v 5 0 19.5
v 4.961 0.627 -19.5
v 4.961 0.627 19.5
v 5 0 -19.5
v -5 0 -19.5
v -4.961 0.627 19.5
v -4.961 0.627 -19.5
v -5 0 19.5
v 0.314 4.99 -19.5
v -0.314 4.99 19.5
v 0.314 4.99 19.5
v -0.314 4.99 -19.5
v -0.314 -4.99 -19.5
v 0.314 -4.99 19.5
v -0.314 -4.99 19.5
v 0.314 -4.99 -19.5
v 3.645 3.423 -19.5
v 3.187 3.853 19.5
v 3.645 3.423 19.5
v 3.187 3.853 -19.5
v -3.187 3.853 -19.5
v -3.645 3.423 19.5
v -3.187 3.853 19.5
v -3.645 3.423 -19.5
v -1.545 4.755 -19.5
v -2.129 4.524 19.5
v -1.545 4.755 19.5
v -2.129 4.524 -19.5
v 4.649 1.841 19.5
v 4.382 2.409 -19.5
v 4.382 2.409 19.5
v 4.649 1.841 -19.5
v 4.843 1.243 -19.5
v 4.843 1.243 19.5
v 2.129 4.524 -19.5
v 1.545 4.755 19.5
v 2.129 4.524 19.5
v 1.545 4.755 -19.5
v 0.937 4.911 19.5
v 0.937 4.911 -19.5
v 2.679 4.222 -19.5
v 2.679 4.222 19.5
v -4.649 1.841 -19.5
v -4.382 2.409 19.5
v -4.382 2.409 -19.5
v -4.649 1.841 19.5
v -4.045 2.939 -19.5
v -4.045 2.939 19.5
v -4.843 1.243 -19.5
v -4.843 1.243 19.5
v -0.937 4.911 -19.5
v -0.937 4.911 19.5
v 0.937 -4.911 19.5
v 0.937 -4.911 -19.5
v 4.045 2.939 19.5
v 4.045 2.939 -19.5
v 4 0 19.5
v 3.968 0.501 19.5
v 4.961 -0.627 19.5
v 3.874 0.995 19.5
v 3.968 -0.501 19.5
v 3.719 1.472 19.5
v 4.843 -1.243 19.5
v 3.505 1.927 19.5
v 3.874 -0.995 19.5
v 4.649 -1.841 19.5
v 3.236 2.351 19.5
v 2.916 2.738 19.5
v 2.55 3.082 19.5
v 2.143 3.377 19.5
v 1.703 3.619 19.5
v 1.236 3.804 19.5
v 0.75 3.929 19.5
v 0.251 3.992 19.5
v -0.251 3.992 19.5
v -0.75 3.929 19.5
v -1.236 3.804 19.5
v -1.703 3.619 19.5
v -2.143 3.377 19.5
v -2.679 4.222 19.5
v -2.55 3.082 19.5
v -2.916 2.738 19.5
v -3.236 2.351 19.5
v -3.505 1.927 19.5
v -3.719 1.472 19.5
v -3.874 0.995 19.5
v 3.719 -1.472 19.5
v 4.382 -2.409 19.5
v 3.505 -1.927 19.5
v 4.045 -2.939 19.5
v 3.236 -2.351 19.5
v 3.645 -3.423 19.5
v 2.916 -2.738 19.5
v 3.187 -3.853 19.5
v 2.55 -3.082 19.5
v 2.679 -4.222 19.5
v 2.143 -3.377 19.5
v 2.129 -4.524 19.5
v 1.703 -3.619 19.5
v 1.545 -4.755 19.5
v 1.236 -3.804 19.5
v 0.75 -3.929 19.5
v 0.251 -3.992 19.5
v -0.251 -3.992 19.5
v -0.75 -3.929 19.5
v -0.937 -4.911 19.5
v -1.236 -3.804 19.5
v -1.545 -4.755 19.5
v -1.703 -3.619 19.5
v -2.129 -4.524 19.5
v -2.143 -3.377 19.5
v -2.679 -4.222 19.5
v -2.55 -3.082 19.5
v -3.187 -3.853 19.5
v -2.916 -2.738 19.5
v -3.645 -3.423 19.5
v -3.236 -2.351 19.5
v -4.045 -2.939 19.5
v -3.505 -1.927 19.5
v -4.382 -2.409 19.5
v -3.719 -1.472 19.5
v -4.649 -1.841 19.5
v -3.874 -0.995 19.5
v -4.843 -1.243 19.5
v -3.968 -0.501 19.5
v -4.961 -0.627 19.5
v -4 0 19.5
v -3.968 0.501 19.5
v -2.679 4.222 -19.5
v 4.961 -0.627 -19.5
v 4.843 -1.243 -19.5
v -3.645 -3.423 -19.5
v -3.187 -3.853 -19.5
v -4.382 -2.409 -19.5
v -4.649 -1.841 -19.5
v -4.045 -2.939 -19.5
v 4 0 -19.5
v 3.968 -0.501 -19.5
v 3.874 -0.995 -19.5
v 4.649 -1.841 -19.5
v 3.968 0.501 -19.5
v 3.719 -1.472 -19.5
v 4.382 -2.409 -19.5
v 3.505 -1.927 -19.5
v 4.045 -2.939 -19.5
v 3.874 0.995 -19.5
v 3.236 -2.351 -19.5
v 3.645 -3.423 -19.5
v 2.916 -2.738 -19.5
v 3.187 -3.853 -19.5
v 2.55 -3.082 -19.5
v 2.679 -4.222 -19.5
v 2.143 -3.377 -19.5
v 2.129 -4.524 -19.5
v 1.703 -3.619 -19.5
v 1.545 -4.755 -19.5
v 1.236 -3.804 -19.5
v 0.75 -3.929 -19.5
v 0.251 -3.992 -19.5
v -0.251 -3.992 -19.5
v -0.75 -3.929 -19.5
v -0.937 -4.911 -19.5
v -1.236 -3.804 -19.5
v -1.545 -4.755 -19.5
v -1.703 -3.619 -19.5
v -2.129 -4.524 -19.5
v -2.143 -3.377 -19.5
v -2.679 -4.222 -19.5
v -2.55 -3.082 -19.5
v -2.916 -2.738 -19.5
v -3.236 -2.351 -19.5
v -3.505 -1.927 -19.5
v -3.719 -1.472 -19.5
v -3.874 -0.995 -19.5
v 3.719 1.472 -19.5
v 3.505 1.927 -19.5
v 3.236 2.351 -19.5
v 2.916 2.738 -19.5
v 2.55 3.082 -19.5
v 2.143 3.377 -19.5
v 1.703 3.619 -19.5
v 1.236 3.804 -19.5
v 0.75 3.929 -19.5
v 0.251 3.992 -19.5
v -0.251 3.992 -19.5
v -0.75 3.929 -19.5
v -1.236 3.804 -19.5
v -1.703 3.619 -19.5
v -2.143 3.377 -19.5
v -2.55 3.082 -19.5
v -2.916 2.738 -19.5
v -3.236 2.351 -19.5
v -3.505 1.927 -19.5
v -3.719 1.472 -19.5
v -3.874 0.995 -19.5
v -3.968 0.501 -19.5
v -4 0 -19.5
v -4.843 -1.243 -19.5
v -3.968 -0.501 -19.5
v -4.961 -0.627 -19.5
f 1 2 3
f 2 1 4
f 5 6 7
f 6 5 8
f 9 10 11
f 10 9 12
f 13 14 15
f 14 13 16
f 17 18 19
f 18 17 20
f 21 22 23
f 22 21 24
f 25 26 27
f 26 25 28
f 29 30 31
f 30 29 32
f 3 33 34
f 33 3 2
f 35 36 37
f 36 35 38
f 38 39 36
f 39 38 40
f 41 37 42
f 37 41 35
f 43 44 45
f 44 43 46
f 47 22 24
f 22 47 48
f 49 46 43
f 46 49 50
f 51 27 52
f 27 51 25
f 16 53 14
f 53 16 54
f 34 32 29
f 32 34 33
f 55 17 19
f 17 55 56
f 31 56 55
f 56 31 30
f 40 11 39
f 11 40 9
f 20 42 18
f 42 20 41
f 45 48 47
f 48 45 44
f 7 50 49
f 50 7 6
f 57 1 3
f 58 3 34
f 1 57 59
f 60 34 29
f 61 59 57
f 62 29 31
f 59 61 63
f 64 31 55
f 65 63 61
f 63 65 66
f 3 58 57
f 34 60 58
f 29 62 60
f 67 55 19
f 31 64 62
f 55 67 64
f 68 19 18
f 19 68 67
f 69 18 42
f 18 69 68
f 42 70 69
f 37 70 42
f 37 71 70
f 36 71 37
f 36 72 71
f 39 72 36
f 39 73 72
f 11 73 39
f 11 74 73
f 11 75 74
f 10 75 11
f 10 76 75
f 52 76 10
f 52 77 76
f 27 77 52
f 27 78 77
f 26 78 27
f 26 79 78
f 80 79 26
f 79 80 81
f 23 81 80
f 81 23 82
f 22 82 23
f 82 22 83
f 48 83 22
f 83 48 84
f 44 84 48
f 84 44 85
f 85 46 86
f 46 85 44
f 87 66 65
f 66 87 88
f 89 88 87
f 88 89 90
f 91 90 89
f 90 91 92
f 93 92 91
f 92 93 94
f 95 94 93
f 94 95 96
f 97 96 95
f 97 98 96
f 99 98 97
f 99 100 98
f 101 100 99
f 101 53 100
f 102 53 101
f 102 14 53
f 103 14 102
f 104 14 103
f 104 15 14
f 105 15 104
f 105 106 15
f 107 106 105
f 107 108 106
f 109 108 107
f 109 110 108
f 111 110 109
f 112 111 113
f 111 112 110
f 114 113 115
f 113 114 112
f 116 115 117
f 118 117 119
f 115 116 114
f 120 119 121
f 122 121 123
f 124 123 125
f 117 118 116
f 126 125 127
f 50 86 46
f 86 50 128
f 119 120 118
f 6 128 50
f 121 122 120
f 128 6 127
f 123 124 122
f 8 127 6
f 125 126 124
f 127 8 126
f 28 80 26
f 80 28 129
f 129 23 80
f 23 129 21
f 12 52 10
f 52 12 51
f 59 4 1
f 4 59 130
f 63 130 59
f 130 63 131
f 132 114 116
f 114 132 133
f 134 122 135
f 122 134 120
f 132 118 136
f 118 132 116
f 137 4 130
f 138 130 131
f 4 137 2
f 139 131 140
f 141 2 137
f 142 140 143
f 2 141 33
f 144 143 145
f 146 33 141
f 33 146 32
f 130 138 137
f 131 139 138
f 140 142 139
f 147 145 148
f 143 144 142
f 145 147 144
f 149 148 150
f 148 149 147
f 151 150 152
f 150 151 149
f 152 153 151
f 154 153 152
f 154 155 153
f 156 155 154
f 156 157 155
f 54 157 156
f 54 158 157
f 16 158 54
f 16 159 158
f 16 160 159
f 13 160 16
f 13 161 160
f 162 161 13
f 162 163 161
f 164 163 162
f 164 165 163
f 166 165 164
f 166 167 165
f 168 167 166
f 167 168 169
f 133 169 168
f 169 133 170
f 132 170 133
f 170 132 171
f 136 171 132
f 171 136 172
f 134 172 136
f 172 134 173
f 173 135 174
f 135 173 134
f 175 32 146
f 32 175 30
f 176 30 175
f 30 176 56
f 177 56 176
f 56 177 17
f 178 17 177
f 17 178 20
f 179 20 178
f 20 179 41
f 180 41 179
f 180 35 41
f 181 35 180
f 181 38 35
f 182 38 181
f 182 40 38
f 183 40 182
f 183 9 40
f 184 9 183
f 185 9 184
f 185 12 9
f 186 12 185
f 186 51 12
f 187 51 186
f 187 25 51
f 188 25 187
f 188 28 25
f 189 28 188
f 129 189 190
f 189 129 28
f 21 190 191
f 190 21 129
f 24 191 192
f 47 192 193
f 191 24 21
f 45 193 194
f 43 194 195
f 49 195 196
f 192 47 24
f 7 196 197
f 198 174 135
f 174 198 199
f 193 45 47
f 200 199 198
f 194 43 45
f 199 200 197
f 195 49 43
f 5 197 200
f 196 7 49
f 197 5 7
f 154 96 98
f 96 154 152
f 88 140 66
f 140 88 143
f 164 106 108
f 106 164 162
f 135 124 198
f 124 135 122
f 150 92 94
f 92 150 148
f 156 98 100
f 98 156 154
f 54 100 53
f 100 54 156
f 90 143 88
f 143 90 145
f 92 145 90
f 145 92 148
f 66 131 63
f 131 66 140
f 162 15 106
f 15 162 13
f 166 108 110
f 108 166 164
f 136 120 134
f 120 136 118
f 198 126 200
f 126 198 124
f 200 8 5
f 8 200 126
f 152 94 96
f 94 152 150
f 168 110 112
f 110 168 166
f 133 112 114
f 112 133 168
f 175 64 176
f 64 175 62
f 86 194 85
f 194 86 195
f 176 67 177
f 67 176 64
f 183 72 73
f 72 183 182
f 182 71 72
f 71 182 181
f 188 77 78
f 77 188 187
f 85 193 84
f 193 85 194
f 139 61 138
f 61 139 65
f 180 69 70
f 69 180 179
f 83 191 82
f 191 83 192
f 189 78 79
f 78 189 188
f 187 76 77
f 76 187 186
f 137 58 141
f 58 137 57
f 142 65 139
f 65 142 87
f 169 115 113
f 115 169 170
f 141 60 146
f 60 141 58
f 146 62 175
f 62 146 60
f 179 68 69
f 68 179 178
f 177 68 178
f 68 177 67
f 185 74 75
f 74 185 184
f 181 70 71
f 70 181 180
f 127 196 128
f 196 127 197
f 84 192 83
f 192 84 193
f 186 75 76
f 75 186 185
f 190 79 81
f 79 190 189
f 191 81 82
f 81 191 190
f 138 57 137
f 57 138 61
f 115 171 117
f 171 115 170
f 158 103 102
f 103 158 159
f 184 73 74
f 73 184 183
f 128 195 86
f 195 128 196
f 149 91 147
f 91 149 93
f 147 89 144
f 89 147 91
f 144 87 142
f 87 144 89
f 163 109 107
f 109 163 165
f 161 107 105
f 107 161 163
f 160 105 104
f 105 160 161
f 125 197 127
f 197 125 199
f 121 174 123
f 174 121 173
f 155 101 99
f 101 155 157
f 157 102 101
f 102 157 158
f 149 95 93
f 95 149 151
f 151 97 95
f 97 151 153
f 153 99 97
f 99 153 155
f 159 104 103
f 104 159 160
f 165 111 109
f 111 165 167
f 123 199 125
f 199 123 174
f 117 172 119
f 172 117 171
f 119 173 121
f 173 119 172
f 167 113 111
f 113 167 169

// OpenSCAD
$fn = 50;


difference() {
	union() {
		translate(v = [0, 0, -19.5000000000]) {
			cylinder(h = 39, r = 5.0000000000);
		}
	}
	union() {
		translate(v = [0, 0, -100.0000000000]) {
			cylinder(h = 200, r = 4);
		}
	}
}
